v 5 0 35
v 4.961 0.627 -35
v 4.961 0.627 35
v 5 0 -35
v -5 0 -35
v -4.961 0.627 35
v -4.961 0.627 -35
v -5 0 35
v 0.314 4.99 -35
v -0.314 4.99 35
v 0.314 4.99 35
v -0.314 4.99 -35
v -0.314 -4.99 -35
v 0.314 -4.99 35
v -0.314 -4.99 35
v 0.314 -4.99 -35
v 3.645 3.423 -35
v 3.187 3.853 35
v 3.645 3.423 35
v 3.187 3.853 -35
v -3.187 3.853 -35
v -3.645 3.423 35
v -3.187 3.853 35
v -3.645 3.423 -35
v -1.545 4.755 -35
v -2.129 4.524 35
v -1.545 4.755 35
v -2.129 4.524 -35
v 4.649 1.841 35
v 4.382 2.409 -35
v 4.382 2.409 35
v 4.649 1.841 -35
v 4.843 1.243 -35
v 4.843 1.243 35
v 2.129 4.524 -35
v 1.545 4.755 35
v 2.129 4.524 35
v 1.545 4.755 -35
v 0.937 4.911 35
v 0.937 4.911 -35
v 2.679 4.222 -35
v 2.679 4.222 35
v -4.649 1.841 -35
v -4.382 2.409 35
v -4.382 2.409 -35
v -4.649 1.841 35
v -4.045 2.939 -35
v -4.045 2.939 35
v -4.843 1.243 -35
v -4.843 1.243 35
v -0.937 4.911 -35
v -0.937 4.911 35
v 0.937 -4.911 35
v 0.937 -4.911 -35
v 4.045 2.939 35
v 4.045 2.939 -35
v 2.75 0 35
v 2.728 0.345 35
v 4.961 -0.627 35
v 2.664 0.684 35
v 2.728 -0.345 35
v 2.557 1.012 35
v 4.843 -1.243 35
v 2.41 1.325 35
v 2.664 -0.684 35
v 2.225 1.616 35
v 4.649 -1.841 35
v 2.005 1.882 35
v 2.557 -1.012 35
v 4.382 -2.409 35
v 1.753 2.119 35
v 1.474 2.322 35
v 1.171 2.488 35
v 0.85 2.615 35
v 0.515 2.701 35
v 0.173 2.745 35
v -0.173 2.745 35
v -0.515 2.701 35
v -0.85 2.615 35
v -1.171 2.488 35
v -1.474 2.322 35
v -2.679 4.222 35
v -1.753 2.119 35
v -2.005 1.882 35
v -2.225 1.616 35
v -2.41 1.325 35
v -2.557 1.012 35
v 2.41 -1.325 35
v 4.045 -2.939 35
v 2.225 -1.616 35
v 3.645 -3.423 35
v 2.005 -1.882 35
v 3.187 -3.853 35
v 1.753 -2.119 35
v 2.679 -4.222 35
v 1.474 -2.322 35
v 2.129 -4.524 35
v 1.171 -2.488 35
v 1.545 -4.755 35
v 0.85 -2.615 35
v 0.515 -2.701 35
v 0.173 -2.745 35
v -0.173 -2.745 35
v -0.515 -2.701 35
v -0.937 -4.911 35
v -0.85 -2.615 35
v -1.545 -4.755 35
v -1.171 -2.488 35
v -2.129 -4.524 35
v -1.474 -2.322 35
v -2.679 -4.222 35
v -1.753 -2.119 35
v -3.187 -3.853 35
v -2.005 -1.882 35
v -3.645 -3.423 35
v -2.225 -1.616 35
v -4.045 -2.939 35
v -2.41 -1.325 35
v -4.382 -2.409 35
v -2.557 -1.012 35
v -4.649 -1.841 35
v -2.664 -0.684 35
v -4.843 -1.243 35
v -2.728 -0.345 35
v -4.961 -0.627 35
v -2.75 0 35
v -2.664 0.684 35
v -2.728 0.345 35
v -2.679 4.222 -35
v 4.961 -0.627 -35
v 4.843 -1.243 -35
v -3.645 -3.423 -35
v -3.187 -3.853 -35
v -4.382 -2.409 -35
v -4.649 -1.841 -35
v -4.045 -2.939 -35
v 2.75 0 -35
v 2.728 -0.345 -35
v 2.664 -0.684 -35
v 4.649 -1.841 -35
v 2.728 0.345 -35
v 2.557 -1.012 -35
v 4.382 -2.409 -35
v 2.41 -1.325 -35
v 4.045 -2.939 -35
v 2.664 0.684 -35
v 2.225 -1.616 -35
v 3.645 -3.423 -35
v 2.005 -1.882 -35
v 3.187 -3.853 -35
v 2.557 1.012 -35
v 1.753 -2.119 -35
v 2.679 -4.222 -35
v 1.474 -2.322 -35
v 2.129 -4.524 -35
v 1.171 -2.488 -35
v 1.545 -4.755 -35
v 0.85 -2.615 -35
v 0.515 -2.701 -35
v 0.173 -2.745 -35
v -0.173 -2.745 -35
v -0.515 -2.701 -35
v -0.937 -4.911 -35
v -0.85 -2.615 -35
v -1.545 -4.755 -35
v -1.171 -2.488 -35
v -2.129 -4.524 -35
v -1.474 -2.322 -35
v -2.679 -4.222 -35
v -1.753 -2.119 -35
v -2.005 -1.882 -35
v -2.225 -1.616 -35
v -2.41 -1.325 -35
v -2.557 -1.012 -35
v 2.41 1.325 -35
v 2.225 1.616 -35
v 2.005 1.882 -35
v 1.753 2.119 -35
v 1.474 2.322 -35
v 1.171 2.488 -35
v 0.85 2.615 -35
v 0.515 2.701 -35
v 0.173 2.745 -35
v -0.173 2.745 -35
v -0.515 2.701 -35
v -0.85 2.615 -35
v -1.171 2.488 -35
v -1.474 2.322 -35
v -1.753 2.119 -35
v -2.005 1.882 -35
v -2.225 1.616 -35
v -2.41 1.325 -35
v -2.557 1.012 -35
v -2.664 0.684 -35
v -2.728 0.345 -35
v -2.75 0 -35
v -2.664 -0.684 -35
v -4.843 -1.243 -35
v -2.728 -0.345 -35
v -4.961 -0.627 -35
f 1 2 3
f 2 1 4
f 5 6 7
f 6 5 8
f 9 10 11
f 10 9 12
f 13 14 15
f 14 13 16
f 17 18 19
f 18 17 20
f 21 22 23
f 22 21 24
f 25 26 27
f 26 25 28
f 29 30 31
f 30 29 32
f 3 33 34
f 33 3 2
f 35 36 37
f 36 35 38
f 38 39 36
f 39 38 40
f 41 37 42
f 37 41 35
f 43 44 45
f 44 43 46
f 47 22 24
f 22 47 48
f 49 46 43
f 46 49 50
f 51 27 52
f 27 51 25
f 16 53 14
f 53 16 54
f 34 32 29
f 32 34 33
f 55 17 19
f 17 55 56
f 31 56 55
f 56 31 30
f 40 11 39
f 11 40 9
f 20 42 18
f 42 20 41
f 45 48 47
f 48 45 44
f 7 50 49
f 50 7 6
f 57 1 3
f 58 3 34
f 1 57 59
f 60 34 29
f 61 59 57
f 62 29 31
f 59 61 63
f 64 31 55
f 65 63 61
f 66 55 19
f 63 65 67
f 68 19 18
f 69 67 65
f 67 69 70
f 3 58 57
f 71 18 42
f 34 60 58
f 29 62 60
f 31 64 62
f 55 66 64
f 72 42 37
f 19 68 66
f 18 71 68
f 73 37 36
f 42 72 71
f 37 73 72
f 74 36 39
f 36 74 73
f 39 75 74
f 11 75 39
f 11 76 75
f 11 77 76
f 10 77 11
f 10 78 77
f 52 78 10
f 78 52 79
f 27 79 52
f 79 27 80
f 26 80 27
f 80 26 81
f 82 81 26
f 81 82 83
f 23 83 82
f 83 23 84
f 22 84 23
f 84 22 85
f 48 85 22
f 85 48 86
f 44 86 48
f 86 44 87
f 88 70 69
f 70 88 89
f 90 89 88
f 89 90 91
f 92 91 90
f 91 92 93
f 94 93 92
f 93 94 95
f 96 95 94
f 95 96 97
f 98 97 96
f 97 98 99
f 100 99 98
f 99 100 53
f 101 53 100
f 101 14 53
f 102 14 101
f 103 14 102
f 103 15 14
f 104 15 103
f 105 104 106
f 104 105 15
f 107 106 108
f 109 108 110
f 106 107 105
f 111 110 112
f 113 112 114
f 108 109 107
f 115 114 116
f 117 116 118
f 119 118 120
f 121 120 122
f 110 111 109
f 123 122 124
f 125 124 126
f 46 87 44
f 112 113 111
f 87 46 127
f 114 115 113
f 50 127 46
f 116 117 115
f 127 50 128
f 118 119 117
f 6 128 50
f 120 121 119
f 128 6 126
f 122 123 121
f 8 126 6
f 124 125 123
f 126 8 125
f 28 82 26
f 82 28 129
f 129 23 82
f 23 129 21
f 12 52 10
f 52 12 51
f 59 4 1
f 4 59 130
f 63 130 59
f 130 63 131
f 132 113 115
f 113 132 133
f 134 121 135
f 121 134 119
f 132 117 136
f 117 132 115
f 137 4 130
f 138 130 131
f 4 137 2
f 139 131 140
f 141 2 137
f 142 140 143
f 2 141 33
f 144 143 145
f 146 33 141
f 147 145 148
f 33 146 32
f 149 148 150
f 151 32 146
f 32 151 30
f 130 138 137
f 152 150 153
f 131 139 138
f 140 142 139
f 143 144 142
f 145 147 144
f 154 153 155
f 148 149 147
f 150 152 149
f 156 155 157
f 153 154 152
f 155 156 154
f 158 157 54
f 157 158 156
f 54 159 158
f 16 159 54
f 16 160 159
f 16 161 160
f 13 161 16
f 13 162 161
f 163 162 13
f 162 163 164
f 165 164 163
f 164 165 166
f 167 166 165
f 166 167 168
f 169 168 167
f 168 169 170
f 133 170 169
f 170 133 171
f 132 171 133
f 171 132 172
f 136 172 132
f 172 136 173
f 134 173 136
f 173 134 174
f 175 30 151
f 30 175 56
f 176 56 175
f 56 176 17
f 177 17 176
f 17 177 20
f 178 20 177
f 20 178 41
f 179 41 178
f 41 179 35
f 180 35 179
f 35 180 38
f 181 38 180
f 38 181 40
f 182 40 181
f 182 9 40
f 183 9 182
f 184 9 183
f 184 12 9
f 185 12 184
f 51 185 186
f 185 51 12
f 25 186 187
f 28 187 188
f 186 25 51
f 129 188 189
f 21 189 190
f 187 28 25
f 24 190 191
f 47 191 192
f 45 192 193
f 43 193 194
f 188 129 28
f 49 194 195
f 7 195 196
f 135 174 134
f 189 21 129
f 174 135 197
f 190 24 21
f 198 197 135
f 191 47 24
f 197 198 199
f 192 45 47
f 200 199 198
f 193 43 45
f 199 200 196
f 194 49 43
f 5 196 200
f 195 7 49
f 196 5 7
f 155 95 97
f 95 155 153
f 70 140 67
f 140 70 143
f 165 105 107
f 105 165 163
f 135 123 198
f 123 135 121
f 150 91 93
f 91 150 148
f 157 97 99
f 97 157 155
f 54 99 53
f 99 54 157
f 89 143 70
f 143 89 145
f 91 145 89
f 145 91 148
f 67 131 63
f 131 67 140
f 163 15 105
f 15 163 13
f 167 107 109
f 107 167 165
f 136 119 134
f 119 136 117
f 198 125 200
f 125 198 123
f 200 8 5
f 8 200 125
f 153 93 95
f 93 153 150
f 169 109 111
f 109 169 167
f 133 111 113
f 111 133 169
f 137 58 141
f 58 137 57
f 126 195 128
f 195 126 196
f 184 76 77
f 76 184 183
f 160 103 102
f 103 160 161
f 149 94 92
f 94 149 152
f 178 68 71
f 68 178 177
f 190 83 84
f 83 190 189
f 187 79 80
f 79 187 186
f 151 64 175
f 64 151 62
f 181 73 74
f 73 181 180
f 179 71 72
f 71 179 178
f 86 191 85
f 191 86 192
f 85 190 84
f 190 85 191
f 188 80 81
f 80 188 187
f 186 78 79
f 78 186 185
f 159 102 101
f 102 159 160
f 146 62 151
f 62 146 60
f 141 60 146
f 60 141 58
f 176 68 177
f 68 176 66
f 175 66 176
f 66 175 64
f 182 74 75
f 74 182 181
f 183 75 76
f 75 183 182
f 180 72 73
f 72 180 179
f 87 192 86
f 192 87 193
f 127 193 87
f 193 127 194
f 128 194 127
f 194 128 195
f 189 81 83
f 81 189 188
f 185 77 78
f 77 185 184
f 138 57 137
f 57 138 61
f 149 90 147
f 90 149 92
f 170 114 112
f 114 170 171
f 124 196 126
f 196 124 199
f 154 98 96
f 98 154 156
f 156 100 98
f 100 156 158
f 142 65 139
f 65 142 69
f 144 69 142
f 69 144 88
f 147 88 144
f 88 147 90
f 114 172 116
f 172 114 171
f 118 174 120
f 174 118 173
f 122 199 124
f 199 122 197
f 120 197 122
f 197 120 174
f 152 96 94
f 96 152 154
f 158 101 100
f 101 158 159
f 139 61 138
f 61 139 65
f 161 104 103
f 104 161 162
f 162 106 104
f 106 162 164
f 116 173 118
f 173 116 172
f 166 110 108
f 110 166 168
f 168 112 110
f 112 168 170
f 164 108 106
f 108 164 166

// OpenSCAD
$fn = 50;


difference() {
	union() {
		translate(v = [0, 0, -35.0000000000]) {
			cylinder(h = 70, r = 5.0000000000);
		}
	}
	union() {
		translate(v = [0, 0, -100.0000000000]) {
			cylinder(h = 200, r = 2.7500000000);
		}
	}
}
